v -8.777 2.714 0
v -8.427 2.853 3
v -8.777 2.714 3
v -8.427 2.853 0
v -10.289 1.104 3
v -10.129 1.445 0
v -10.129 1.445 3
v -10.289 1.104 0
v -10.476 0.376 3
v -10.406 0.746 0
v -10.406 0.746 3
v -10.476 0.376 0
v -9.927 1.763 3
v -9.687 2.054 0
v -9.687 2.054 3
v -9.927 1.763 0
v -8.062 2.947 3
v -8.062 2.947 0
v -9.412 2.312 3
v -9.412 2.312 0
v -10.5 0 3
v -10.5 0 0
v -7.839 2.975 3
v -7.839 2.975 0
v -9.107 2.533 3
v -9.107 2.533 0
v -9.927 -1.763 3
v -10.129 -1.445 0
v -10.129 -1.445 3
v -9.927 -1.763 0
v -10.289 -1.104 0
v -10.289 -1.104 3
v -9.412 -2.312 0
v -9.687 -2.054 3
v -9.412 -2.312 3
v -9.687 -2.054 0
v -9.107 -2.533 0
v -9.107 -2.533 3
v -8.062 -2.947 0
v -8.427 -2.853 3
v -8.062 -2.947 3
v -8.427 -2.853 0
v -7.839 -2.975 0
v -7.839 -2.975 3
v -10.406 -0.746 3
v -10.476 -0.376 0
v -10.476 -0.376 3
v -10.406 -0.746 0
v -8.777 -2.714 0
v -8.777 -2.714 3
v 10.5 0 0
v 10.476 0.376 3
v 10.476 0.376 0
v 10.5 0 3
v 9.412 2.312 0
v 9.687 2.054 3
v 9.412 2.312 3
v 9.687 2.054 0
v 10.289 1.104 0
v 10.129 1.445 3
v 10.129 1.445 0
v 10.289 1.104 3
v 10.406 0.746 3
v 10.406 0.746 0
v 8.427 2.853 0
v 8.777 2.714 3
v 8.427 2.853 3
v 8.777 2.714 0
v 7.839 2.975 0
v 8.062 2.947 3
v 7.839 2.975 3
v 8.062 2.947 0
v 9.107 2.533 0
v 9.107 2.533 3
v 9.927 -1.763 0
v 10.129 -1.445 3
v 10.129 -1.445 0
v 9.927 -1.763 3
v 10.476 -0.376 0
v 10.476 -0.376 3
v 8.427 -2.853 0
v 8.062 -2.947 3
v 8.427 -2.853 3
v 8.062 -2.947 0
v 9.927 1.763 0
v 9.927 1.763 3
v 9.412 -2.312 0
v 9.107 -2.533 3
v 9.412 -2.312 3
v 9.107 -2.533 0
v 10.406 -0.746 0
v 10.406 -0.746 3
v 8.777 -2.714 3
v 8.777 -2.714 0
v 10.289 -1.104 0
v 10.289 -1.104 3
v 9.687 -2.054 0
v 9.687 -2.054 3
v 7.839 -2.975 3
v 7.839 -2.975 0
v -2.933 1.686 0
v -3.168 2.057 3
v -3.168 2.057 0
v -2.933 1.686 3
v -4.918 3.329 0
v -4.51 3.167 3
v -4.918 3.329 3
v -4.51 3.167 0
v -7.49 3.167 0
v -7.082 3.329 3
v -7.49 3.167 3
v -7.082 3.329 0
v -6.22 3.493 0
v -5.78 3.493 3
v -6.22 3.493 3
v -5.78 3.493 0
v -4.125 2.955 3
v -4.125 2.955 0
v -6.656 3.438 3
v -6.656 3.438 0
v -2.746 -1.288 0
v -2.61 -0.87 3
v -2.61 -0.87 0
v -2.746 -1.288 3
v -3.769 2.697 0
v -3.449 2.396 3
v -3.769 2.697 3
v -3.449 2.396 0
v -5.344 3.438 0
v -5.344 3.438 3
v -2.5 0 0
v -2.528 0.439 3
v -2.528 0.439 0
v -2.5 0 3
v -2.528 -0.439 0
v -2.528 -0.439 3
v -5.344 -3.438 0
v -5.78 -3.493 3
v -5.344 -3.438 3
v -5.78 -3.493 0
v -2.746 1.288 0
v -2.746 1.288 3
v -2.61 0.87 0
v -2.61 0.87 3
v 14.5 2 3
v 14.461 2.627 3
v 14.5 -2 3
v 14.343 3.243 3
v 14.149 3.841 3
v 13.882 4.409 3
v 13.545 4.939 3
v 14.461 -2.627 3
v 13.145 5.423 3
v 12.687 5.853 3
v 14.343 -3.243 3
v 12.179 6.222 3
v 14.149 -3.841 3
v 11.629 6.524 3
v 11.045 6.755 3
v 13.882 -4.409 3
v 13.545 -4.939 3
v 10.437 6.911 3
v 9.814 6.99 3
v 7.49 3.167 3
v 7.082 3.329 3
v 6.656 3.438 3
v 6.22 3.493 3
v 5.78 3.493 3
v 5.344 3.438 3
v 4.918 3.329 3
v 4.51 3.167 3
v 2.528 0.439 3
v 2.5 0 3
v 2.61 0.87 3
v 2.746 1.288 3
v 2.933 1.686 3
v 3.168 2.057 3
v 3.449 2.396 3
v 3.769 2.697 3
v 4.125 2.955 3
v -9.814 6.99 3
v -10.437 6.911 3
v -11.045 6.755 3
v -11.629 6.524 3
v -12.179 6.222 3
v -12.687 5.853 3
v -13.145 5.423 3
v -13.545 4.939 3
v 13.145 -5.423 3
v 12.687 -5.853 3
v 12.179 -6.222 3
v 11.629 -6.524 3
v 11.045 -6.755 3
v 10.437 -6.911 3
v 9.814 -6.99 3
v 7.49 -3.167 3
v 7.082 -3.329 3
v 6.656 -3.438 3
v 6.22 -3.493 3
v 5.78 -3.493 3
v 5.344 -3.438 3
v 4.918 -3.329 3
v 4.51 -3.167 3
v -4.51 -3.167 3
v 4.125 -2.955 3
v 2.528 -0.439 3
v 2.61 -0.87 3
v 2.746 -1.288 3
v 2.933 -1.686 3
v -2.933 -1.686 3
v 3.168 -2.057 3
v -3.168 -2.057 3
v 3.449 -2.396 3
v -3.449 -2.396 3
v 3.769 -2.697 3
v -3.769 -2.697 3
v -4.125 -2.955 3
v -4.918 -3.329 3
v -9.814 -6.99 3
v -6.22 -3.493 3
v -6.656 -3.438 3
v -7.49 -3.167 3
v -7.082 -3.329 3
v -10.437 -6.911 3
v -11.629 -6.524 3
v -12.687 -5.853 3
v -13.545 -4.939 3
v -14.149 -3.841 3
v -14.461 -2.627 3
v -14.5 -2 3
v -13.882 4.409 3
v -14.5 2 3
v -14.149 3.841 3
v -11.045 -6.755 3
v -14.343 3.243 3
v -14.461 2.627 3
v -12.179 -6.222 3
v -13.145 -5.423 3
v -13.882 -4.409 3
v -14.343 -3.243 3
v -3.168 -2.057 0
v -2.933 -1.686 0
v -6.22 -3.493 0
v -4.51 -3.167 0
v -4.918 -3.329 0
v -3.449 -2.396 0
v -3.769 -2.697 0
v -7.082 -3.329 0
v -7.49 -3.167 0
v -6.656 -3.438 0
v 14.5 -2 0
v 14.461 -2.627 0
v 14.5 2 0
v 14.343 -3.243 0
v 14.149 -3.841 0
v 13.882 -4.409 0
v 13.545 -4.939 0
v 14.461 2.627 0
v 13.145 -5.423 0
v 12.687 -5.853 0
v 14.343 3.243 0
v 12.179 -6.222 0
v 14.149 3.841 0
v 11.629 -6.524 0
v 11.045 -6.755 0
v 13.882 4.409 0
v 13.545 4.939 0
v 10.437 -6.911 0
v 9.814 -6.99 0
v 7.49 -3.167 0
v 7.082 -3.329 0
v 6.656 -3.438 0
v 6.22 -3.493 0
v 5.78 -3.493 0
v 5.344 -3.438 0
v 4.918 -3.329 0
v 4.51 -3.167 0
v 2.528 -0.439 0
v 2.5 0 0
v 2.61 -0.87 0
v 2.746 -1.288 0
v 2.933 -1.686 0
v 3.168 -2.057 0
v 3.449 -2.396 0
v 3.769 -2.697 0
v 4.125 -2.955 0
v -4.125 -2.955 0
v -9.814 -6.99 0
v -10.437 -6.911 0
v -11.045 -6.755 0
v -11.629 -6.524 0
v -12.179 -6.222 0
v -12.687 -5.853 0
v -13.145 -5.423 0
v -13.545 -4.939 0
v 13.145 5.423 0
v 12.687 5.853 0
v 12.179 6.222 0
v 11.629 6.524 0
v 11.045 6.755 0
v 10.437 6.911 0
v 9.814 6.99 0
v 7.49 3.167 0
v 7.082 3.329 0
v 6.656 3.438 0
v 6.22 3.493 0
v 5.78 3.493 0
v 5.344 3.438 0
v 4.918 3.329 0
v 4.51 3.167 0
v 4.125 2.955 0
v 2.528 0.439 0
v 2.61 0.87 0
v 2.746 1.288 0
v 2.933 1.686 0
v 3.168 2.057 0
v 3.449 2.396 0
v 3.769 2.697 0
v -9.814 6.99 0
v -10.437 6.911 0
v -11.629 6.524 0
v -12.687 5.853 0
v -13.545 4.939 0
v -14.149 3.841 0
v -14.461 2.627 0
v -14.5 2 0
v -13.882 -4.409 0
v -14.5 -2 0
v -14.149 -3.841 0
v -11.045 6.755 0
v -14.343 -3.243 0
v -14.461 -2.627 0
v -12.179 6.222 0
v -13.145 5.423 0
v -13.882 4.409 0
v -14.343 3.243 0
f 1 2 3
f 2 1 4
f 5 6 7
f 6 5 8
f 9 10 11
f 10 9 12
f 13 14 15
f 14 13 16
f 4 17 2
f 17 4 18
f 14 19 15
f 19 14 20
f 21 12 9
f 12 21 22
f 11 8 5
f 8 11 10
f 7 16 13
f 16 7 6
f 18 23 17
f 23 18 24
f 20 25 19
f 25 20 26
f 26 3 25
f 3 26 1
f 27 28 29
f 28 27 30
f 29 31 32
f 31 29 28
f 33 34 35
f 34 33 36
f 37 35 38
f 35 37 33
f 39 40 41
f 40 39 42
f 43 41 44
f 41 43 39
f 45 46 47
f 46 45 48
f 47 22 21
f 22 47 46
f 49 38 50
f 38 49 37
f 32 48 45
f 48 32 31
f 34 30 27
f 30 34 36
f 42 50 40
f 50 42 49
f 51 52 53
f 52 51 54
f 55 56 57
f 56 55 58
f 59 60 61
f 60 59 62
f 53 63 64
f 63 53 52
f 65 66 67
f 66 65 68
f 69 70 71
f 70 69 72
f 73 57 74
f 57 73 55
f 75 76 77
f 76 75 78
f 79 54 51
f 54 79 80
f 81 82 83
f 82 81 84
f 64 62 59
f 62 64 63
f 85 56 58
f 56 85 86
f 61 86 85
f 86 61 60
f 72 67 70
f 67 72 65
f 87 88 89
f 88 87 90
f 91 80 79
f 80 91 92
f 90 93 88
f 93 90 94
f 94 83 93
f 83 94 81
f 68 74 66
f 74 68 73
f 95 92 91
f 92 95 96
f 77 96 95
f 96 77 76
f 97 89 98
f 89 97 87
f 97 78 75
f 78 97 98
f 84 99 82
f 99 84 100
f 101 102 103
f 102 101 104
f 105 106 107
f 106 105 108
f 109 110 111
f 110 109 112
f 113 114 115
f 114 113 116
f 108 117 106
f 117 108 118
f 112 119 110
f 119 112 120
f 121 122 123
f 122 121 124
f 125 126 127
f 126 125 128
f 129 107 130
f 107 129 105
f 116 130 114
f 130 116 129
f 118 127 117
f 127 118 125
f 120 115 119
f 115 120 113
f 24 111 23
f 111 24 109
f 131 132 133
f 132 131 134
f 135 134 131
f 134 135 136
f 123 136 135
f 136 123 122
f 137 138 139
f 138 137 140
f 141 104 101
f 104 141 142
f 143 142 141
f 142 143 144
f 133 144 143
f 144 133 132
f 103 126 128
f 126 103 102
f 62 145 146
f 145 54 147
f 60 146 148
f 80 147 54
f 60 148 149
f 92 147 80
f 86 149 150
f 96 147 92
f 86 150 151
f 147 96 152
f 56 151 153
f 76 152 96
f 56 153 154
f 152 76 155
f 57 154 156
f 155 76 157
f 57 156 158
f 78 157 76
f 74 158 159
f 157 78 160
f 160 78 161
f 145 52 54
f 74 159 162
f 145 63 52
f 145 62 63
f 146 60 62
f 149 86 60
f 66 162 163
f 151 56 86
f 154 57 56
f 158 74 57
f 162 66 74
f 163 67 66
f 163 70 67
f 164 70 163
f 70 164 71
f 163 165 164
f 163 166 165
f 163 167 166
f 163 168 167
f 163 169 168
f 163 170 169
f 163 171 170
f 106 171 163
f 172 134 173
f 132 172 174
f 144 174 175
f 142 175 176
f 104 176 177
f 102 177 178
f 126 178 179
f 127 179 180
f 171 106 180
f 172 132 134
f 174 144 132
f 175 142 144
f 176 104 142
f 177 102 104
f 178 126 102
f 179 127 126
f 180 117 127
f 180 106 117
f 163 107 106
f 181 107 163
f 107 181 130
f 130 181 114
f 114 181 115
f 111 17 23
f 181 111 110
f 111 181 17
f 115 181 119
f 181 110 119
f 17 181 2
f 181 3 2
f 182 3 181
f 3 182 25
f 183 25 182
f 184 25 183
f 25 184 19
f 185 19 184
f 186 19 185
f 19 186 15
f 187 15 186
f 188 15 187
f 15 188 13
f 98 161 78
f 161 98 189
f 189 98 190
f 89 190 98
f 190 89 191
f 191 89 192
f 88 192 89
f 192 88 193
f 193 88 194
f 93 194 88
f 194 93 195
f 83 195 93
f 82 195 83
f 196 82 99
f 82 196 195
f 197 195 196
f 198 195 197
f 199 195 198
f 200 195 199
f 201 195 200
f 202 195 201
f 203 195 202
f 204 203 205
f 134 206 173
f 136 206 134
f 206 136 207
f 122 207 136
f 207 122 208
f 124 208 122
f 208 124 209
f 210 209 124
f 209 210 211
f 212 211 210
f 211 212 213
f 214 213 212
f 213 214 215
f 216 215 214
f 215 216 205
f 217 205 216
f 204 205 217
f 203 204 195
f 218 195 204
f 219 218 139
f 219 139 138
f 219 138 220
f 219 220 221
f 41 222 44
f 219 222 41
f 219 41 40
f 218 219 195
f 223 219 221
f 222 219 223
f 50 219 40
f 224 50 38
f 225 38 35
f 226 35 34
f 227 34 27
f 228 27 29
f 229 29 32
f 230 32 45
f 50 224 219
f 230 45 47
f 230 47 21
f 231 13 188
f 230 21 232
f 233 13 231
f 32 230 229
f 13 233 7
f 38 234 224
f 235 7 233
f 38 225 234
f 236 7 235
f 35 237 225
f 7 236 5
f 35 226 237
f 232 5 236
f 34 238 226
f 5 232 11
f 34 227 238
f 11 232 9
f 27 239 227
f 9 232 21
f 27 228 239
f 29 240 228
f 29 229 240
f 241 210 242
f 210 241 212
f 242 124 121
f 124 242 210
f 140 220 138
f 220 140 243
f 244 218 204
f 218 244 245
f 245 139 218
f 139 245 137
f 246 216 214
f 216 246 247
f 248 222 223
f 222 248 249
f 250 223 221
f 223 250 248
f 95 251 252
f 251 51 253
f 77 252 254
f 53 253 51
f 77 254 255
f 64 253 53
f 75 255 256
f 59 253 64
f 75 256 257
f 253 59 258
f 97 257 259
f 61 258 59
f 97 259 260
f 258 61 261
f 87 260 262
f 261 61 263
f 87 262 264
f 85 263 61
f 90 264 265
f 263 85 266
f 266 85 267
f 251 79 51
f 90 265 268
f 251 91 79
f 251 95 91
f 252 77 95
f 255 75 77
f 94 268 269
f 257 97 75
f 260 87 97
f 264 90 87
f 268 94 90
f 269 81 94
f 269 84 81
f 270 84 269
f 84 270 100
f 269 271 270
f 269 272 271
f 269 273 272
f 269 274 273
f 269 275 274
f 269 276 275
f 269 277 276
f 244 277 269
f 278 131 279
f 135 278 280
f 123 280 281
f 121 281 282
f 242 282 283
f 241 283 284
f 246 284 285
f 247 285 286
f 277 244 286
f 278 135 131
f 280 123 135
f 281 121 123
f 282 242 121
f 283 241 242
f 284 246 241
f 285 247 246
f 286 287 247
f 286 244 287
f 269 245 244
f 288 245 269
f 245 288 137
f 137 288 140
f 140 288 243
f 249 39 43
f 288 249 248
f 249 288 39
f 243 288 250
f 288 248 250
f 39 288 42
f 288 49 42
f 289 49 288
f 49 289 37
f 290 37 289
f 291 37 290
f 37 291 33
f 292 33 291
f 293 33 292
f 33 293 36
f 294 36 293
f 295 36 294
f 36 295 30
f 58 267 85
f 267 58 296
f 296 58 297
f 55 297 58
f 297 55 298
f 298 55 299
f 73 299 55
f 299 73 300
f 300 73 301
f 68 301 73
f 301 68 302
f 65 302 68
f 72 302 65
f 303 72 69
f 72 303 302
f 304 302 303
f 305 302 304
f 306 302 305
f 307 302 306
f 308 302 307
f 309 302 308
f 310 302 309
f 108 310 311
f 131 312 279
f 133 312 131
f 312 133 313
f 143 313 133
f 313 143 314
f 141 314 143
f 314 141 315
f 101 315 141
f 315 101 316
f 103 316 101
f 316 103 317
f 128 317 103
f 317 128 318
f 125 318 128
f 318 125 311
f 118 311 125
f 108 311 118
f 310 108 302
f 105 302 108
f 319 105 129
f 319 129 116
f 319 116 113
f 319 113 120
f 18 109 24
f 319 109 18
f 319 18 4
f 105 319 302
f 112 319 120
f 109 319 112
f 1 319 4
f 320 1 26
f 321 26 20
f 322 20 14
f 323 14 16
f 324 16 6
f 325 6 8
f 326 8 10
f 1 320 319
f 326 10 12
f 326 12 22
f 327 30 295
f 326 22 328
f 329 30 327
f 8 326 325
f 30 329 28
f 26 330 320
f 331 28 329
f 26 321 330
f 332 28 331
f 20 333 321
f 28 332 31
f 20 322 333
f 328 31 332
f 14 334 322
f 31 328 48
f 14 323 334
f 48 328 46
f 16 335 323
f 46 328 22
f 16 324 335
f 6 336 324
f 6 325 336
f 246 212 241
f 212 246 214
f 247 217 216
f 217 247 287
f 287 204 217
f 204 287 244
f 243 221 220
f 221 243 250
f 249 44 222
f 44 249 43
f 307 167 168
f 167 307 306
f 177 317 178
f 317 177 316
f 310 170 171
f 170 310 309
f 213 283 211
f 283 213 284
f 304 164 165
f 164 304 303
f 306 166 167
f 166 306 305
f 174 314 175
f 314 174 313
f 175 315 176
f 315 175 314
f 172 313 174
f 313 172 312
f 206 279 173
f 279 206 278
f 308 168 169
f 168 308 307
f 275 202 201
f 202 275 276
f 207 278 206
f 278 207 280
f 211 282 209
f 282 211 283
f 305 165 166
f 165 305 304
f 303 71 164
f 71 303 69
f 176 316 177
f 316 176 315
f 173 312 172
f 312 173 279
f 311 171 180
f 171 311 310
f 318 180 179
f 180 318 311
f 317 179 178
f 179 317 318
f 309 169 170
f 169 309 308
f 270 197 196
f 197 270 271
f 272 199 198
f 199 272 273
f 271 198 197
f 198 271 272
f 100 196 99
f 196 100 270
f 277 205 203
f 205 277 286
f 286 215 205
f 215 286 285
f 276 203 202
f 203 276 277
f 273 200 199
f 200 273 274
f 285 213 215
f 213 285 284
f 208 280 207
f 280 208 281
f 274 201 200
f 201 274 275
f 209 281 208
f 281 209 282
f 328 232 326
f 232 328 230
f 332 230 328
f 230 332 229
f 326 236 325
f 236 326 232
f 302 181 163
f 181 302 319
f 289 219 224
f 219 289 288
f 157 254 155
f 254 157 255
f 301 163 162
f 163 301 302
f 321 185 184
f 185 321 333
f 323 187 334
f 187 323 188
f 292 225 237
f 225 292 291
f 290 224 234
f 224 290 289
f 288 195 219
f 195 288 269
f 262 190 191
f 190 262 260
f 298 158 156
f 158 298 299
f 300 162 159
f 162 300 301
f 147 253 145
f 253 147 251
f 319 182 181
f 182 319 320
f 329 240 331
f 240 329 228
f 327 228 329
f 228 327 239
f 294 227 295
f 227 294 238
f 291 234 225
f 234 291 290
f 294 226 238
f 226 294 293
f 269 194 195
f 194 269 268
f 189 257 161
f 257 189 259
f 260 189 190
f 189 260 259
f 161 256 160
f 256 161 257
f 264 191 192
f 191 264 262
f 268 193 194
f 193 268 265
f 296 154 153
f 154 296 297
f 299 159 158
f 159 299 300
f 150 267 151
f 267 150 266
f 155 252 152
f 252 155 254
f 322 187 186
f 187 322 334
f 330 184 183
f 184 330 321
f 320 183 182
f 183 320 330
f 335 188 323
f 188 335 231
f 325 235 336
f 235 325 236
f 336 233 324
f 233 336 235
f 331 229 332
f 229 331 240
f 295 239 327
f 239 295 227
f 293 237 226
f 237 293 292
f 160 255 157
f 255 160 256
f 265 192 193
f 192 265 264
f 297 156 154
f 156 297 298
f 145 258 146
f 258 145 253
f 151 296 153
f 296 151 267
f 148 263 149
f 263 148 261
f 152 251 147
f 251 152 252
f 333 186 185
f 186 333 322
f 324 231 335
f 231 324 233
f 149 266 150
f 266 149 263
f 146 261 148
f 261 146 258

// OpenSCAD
$fn = 50;


difference() {
	union() {
		hull() {
			translate(v = [-9.5000000000, 2.0000000000, 0]) {
				cylinder(h = 3, r = 5);
			}
			translate(v = [9.5000000000, 2.0000000000, 0]) {
				cylinder(h = 3, r = 5);
			}
			translate(v = [-9.5000000000, -2.0000000000, 0]) {
				cylinder(h = 3, r = 5);
			}
			translate(v = [9.5000000000, -2.0000000000, 0]) {
				cylinder(h = 3, r = 5);
			}
		}
	}
	union() {
		#translate(v = [-7.5000000000, 0.0000000000, -100.0000000000]) {
			cylinder(h = 200, r = 3.0000000000);
		}
		#translate(v = [-7.5000000000, 0.0000000000, -100.0000000000]) {
			cylinder(h = 200, r = 3.0000000000);
		}
		#translate(v = [7.5000000000, 0.0000000000, -100.0000000000]) {
			cylinder(h = 200, r = 3.0000000000);
		}
		#translate(v = [7.5000000000, 0.0000000000, -100.0000000000]) {
			cylinder(h = 200, r = 3.0000000000);
		}
		#translate(v = [-6.0000000000, 0, 0]) {
			cylinder(h = 3, r = 3.5000000000);
		}
		#translate(v = [6.0000000000, 0, 0]) {
			cylinder(h = 3, r = 3.5000000000);
		}
	}
}
